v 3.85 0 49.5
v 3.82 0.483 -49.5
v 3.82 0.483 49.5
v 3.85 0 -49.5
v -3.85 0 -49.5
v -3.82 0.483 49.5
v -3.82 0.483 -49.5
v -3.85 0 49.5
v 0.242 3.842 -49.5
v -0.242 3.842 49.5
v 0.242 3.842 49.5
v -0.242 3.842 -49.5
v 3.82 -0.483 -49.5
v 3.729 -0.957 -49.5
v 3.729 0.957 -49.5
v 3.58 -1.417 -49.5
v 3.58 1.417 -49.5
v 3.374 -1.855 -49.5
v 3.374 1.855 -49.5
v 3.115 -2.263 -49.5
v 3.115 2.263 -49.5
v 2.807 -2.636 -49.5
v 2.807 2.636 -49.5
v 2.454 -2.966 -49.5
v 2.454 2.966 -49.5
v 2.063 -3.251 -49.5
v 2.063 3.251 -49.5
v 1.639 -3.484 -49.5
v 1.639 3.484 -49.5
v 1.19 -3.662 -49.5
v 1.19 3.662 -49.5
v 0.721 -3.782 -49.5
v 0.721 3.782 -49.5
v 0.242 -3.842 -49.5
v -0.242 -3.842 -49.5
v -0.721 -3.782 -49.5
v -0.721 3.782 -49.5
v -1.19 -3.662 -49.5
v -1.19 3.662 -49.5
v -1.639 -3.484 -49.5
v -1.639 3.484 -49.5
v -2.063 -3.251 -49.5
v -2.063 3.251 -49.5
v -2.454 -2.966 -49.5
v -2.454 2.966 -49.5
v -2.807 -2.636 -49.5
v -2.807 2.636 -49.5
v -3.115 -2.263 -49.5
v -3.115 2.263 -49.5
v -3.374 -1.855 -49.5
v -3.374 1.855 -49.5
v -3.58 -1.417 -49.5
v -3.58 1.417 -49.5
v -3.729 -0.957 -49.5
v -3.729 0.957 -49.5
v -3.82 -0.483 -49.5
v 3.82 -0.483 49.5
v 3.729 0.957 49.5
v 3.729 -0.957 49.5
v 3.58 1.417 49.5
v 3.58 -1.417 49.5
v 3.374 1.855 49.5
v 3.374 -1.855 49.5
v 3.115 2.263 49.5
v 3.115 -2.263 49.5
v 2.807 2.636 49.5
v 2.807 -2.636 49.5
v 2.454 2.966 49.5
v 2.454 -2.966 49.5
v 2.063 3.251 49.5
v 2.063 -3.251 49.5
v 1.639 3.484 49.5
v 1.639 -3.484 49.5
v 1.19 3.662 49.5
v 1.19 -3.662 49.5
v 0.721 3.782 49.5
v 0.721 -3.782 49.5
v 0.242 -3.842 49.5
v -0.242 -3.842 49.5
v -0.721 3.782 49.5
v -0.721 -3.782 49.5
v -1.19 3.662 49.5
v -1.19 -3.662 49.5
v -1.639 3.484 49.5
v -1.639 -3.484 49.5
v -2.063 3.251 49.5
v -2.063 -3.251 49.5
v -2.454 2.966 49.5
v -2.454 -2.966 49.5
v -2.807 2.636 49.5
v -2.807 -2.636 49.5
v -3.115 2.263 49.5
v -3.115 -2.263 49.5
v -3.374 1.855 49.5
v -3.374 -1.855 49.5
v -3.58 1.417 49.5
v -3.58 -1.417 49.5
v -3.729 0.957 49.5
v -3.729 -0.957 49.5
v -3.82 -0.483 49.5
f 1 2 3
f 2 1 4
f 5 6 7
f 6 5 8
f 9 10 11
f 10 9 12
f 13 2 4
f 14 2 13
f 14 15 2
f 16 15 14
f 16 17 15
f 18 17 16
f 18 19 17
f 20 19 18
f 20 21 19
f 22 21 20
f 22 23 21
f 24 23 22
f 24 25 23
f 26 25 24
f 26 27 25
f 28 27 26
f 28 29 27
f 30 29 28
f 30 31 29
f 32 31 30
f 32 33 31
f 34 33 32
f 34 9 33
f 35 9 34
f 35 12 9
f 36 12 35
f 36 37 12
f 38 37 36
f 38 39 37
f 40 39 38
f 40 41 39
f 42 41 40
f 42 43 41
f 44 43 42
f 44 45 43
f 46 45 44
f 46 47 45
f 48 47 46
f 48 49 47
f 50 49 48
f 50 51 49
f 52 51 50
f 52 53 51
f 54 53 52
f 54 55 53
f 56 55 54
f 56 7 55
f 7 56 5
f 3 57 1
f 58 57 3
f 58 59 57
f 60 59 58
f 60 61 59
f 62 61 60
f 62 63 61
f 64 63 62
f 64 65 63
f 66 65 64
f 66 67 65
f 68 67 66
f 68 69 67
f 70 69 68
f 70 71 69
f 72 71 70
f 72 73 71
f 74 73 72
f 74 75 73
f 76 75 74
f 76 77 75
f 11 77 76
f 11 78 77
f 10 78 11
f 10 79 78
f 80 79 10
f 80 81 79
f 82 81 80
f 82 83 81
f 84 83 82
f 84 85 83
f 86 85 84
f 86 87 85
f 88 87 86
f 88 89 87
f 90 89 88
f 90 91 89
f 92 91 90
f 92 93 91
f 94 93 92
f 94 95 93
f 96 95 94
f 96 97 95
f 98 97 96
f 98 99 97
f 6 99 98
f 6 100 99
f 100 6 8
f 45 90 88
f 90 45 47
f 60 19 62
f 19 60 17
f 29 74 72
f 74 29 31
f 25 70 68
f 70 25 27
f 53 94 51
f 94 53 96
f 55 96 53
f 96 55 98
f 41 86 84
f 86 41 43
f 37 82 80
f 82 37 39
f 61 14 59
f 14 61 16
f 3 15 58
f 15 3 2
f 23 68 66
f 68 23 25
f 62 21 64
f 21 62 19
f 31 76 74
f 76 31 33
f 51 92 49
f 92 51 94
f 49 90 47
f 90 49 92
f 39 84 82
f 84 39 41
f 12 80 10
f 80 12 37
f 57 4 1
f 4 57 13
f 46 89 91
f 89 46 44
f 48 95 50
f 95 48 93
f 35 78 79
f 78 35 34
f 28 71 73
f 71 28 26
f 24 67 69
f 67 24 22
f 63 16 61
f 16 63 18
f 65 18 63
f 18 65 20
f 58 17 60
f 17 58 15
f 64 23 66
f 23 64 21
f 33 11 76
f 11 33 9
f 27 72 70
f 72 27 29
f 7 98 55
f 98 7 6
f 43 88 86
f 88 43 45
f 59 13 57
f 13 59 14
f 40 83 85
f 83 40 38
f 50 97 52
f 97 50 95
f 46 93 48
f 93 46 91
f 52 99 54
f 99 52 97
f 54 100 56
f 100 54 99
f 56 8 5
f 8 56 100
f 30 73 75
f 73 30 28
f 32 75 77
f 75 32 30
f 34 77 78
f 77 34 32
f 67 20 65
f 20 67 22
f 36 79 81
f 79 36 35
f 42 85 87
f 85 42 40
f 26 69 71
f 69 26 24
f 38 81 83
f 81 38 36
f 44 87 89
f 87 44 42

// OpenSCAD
$fn = 50;


difference() {
	union() {
		translate(v = [0, 0, -49.5000000000]) {
			cylinder(h = 99, r = 3.8500000000);
		}
	}
	union() {
		translate(v = [0, 0, -100.0000000000]) {
			cylinder(h = 200, r = 0);
		}
	}
}
